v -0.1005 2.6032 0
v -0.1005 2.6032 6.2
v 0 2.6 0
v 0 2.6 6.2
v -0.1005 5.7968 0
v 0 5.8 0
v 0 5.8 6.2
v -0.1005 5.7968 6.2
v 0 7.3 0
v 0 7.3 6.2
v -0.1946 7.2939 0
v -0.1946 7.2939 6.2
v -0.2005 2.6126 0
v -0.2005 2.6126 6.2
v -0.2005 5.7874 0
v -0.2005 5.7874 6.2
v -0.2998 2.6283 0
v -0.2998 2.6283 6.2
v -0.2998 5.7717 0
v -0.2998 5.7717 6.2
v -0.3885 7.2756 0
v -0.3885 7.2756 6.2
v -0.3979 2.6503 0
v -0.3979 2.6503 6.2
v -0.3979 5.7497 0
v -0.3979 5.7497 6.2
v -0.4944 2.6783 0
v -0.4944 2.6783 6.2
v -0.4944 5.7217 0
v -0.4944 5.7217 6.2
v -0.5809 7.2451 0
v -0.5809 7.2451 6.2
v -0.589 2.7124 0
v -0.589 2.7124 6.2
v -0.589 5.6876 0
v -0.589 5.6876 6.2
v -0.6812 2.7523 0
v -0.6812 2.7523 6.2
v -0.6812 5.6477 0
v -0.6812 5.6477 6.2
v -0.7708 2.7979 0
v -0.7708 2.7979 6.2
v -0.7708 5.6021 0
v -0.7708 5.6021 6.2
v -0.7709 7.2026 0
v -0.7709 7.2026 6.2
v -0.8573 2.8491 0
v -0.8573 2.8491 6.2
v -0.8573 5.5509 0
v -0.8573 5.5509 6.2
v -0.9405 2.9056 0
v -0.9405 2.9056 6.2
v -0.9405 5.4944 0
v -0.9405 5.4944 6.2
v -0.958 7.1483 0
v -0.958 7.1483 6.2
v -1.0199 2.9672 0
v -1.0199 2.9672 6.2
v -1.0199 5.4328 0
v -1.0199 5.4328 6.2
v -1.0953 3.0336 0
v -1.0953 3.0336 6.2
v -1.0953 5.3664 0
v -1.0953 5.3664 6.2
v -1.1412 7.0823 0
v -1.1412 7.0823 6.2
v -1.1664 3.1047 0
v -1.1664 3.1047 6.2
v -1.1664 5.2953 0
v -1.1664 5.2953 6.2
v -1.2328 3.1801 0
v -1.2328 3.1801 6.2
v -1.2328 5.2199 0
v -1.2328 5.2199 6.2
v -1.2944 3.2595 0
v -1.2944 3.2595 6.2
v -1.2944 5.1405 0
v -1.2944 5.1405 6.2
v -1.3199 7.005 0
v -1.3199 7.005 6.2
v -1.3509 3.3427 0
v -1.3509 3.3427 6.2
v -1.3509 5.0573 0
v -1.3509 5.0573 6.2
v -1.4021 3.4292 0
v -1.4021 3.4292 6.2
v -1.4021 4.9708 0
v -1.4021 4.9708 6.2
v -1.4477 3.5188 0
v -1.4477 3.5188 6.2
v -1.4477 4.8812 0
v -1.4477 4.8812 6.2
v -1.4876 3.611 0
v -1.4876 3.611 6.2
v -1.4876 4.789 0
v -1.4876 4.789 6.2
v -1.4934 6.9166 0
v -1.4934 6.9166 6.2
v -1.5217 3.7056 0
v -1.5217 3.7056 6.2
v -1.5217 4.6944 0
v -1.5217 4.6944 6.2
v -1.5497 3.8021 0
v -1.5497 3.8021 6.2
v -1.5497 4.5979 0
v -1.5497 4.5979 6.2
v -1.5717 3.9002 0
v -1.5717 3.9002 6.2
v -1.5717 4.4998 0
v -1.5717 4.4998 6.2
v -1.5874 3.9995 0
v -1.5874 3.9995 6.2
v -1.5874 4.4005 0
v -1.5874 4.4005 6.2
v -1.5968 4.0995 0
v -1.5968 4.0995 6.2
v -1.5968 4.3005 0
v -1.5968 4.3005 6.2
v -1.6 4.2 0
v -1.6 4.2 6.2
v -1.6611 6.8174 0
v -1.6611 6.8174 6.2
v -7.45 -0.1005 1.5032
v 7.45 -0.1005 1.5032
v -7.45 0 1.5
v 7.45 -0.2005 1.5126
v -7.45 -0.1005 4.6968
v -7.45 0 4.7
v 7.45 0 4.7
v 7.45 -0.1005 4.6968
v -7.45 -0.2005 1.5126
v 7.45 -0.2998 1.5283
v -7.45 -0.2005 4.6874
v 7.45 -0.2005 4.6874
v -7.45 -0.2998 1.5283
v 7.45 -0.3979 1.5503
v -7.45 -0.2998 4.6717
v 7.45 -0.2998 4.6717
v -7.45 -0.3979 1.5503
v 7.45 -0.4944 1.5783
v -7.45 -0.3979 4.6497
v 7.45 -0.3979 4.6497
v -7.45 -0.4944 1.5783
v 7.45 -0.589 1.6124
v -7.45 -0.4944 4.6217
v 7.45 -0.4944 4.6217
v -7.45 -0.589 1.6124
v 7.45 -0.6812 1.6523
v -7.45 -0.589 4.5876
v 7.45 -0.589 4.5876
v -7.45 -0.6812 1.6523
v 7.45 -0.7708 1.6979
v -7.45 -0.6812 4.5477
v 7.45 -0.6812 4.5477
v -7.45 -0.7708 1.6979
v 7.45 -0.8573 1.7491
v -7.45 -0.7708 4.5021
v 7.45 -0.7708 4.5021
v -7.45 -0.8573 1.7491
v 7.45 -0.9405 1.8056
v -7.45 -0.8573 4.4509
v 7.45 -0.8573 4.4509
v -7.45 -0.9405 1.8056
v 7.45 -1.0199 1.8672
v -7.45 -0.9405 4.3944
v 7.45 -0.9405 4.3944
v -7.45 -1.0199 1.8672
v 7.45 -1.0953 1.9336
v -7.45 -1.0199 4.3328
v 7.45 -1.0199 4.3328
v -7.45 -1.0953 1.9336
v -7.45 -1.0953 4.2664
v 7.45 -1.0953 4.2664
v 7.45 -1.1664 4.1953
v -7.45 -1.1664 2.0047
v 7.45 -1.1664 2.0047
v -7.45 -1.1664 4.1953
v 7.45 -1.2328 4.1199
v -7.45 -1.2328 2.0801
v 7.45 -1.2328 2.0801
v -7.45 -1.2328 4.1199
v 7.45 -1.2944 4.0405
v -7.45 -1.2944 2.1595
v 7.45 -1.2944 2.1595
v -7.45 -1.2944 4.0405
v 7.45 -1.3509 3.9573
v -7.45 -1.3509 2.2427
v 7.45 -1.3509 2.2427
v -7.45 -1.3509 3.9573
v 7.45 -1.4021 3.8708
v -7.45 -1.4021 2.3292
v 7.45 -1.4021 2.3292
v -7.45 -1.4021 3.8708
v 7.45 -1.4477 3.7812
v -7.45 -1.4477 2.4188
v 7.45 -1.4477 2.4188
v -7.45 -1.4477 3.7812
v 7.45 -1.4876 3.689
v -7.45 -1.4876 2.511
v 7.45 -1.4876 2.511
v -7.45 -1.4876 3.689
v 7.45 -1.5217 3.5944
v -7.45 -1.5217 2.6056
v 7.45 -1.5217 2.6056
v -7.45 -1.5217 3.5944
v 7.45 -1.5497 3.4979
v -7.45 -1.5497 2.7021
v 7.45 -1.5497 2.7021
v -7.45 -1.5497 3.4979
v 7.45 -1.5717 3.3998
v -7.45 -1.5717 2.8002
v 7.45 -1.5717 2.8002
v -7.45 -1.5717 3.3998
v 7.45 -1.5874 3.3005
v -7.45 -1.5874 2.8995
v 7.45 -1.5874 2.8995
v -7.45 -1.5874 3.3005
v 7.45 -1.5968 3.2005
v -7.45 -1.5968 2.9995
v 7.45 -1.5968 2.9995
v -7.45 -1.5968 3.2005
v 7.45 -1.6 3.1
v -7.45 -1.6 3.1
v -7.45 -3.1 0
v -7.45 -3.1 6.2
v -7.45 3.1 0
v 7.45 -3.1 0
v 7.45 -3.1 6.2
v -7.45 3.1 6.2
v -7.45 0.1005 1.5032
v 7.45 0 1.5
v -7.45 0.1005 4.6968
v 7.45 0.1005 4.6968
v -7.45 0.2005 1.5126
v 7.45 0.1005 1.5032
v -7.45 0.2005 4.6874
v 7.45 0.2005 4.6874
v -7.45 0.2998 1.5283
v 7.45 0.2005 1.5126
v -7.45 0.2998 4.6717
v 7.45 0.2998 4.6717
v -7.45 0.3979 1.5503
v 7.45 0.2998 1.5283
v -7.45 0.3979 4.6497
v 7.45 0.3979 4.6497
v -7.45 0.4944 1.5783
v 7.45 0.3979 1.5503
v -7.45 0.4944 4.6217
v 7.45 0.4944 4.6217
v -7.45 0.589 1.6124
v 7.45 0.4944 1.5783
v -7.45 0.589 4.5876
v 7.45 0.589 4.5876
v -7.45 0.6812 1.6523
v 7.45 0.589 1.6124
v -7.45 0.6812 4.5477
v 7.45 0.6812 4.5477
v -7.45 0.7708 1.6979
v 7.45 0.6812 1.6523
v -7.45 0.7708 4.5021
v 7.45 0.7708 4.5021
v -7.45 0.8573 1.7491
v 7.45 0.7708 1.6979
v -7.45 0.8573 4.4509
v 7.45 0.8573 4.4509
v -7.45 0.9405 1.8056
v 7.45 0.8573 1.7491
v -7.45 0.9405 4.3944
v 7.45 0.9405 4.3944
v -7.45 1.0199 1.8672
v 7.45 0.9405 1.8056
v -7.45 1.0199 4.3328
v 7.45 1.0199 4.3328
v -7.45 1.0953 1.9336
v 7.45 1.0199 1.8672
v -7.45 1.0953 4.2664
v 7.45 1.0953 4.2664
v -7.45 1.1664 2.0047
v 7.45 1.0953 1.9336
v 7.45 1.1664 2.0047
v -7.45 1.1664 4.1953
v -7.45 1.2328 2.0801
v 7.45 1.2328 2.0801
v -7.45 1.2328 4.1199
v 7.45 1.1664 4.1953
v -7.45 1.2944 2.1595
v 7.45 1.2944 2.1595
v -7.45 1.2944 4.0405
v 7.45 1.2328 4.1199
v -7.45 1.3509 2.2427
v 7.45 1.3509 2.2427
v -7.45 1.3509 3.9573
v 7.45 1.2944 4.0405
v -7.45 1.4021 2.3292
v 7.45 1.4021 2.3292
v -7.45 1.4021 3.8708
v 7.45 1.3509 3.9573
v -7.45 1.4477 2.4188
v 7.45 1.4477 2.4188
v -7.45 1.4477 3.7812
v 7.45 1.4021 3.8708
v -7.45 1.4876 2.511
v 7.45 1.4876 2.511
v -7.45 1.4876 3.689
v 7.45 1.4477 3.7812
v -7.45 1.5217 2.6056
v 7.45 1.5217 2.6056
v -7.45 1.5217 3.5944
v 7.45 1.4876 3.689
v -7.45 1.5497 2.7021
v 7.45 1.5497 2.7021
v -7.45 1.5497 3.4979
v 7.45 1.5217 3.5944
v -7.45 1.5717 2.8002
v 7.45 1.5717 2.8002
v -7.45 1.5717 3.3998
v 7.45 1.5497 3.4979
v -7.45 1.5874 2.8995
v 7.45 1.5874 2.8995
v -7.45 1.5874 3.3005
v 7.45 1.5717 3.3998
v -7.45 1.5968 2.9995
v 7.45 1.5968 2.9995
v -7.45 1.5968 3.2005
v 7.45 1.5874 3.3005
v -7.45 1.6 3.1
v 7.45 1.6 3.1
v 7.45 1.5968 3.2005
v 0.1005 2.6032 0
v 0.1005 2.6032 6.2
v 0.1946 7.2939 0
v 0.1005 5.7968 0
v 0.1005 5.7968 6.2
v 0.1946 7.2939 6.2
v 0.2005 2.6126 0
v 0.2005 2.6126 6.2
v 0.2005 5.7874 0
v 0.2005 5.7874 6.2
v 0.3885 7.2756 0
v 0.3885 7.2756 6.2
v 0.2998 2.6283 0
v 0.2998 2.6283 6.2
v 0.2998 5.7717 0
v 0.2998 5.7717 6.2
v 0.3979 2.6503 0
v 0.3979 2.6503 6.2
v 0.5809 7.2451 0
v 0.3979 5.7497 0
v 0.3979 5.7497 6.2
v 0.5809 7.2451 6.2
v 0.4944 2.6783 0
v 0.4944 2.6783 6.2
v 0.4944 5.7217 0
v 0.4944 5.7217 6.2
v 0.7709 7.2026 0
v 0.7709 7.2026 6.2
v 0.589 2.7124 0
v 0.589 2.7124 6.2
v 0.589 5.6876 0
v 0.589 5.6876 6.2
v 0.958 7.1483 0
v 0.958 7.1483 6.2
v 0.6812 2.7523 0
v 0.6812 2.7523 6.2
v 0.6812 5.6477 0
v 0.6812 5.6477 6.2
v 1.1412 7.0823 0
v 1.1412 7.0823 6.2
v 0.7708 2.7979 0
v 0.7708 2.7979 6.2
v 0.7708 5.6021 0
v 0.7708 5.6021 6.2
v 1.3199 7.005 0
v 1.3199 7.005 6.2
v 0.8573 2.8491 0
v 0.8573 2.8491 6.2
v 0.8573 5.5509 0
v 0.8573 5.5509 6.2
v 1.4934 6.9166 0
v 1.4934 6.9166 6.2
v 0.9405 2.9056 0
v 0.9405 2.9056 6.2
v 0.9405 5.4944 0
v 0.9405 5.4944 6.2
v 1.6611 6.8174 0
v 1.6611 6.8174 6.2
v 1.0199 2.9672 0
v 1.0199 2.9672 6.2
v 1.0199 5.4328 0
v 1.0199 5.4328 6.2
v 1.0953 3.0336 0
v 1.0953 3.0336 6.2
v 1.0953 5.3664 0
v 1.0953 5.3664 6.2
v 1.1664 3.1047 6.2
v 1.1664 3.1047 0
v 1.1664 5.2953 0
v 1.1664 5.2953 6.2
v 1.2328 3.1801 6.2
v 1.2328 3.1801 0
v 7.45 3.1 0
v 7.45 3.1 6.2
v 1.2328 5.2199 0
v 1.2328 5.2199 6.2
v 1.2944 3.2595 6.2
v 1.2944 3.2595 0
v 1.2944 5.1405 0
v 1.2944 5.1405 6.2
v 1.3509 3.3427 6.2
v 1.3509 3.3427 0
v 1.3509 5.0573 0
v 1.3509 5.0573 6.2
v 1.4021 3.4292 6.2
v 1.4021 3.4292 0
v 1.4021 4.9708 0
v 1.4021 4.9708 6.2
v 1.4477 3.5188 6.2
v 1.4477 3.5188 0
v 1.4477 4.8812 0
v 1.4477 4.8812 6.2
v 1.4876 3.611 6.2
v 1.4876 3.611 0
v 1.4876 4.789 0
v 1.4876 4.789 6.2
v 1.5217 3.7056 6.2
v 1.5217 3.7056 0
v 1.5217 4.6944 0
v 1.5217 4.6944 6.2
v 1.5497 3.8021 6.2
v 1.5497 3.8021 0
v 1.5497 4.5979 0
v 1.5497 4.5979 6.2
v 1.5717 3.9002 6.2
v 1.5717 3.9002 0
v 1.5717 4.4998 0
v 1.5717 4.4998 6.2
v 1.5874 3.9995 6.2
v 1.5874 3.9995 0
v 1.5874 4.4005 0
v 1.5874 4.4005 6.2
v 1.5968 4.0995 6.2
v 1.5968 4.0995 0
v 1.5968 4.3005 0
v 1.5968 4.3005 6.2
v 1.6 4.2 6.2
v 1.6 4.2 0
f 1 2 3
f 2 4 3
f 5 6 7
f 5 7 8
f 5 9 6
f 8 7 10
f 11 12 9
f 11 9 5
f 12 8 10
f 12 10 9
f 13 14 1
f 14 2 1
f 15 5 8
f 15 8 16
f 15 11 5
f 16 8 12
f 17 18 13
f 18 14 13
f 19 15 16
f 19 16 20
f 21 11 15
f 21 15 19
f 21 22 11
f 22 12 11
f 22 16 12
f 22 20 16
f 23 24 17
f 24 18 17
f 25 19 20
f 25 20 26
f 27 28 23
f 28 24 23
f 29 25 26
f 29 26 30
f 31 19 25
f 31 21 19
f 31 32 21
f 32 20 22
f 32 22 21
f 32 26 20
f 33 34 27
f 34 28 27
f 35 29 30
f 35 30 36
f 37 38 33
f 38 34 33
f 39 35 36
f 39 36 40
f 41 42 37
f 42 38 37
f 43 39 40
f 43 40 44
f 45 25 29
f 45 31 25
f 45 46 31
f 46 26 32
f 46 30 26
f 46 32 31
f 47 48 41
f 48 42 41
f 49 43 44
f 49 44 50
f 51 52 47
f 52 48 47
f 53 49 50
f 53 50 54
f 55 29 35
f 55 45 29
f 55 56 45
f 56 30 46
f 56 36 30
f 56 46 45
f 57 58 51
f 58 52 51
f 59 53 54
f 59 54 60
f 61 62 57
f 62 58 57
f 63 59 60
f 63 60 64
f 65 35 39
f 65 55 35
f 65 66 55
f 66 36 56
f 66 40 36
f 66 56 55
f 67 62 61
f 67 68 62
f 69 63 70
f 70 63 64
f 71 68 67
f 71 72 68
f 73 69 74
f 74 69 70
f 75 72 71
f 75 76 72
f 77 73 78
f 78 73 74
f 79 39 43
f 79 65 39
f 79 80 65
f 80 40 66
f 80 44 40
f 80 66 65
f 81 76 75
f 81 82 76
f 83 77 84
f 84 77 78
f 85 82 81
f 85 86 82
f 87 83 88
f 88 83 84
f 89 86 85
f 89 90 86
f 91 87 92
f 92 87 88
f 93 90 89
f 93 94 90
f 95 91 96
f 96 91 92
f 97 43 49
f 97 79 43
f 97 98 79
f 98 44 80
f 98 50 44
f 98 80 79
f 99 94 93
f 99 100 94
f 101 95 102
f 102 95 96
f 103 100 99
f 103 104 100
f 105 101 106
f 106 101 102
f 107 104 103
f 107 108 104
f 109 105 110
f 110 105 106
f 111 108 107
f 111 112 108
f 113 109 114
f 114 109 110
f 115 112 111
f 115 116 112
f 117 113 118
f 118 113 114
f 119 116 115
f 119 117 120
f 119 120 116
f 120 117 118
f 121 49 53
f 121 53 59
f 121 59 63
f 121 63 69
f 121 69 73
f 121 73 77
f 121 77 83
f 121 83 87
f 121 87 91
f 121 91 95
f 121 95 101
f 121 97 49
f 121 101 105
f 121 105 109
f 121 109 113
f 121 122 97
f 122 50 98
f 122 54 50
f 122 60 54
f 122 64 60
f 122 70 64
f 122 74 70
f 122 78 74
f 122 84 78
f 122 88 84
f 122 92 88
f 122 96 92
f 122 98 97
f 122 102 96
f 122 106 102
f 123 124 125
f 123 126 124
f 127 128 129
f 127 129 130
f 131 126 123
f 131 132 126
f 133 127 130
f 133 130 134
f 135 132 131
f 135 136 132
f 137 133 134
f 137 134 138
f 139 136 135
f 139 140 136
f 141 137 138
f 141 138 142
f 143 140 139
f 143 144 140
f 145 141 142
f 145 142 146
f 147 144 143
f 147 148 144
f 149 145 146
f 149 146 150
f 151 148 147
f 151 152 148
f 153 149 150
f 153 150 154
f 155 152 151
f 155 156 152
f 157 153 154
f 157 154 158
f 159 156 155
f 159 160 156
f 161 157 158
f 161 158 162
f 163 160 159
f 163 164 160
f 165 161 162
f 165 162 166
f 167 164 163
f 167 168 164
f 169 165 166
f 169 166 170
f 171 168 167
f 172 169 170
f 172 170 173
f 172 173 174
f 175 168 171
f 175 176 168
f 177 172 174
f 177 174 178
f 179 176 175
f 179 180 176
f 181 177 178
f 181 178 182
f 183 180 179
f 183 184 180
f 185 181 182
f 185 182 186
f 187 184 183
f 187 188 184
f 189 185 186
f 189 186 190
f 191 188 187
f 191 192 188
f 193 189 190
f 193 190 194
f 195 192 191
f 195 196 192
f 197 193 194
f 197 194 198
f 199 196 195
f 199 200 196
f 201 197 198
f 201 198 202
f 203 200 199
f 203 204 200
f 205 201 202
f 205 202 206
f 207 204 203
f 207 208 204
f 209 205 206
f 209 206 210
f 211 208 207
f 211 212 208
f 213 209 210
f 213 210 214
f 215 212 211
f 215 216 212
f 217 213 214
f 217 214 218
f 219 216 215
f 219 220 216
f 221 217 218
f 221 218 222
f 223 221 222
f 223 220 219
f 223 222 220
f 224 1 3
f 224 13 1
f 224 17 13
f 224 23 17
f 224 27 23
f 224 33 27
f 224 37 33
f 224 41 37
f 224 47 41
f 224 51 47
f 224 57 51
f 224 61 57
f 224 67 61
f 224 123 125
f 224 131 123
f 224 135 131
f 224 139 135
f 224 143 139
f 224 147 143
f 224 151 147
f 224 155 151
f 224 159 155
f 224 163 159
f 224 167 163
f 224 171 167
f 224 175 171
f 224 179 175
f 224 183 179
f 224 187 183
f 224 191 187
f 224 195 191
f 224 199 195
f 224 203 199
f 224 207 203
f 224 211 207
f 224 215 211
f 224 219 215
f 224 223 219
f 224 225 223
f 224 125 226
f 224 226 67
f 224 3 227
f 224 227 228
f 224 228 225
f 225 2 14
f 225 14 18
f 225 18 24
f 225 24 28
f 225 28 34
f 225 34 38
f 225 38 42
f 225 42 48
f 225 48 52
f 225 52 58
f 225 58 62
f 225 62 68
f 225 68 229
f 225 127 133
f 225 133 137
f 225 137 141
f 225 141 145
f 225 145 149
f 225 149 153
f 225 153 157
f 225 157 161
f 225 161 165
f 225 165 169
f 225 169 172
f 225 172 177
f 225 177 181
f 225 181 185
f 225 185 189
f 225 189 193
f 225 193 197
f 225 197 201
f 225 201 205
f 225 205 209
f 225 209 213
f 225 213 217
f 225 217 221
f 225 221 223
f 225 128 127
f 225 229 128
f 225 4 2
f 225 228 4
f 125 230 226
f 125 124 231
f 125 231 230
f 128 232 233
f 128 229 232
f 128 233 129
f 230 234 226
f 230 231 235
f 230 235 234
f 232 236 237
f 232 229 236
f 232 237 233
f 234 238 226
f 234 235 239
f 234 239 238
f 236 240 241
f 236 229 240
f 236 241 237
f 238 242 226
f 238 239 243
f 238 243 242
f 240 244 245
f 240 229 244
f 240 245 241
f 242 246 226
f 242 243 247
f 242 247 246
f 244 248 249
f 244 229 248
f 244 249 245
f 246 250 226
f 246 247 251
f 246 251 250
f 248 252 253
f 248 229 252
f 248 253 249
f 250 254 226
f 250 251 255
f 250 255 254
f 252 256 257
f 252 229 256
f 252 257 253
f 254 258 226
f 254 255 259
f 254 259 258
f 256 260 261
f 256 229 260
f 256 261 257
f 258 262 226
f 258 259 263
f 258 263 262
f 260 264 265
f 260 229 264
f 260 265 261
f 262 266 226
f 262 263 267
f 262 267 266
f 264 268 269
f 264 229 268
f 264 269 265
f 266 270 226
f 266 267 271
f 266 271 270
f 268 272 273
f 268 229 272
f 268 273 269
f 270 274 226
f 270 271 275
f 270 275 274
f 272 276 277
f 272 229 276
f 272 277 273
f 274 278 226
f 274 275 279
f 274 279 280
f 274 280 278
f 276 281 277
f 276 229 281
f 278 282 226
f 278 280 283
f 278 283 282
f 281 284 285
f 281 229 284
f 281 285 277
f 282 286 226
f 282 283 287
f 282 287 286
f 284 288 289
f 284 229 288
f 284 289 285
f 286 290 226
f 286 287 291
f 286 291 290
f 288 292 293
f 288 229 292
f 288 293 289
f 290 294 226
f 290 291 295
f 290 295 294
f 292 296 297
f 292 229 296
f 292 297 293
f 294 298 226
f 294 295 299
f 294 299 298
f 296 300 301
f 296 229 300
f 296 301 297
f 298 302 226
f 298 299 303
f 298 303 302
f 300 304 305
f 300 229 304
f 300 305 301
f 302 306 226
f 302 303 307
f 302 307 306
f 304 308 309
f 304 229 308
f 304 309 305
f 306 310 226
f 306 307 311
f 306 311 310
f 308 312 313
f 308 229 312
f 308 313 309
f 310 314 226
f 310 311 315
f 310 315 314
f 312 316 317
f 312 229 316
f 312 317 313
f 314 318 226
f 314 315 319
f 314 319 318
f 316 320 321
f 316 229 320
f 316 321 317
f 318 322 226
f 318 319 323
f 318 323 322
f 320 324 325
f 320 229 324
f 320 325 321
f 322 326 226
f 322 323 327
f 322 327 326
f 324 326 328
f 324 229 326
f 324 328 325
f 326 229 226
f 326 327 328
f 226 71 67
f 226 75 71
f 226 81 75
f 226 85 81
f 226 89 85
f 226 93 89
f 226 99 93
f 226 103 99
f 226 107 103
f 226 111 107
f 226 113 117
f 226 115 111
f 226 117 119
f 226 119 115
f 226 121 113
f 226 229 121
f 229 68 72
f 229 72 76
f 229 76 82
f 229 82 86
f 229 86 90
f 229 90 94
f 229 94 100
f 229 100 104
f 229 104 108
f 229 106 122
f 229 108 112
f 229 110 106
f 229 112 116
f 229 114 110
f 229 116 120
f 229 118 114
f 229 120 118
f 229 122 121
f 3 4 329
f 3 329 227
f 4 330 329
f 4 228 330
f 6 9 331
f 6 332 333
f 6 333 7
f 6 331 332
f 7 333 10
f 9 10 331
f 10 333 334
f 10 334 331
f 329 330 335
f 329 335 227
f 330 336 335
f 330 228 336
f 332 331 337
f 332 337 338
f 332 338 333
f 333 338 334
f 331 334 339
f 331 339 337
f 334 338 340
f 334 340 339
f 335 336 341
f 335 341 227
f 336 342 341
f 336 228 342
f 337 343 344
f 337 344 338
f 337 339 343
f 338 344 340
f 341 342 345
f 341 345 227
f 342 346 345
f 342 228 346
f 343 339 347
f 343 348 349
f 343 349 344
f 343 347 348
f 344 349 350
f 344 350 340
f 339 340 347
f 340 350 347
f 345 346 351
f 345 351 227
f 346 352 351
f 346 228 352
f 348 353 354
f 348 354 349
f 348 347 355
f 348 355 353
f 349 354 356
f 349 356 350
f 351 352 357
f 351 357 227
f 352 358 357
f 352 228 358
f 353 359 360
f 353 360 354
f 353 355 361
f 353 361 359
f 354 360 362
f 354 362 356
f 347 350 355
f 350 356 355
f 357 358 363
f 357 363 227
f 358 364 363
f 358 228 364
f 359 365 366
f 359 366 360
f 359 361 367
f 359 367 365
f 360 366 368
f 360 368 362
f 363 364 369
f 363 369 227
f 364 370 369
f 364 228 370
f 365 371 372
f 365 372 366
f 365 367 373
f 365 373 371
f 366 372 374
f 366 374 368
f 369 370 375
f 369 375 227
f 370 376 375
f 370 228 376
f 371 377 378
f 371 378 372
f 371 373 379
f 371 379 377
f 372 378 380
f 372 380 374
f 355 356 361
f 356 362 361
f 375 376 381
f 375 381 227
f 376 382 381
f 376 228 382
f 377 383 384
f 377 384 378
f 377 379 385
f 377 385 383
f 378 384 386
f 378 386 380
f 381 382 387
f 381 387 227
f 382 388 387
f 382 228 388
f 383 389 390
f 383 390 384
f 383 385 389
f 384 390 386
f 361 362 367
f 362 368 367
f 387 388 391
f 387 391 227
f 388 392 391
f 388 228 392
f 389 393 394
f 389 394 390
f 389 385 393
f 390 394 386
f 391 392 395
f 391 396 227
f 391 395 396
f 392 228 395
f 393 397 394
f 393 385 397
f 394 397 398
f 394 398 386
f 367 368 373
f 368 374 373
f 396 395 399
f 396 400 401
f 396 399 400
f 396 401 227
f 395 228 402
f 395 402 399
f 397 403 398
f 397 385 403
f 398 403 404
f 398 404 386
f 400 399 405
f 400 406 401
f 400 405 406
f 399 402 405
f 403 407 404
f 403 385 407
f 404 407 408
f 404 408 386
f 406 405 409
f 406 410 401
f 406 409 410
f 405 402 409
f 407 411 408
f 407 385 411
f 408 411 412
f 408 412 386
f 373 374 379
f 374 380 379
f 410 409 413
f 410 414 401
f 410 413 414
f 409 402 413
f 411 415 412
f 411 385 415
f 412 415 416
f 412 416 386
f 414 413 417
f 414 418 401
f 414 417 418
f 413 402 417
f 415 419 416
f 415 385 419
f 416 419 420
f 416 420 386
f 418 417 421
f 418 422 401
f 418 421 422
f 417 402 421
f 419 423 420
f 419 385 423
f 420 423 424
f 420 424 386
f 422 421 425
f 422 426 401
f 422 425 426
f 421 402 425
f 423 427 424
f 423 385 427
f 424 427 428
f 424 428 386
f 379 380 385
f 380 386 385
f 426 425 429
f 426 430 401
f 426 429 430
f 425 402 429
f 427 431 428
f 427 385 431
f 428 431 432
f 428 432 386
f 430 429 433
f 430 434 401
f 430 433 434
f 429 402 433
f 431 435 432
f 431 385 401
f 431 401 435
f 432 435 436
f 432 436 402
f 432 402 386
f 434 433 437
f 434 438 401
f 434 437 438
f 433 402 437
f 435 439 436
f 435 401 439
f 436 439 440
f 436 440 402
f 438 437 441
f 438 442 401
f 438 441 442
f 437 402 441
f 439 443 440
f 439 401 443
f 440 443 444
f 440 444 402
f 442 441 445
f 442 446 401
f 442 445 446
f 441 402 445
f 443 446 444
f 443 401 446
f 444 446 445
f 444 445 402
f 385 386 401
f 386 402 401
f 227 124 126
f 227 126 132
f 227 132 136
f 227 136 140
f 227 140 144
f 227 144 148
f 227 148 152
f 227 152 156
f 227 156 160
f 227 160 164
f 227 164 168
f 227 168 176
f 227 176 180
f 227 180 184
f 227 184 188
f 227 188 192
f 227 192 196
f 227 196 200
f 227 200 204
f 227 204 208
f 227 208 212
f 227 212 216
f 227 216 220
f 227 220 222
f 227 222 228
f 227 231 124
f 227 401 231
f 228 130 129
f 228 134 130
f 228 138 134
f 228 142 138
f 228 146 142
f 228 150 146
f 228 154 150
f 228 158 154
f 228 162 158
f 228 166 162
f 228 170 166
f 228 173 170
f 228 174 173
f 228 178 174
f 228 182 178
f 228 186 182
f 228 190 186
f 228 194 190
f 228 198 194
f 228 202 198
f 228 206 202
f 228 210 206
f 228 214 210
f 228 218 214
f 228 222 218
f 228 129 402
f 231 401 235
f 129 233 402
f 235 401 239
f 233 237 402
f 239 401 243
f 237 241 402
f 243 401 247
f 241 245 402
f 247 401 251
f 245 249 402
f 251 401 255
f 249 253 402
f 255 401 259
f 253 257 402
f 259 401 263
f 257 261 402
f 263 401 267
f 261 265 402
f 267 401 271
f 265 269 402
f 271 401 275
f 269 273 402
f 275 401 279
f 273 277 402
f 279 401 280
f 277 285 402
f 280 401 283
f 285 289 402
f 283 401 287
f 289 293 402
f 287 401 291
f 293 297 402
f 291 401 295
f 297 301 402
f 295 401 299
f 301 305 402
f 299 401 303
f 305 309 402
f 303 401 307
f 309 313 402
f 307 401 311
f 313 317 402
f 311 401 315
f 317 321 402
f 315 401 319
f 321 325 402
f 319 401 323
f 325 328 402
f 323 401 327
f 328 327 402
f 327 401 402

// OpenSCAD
// file: parameters.scad
global_clearance = 0.5;


//Main tube diameter - hole [mm]
main_tube_outer_diameter = 25.4;
main_tube_inner_diameter = 23.05;

// Nastavení parametrů rotoru

gliding_aggle = 14;         // tenhle úhel by se zřejmě v budoucnu měl počítat z požadované klouzavosti.

rotor_blade_AOA = 1.5;      // nastavení úhlu náběhu rotorového listu
rotor_blade_length = 970;   // délka rotorového listu
rotor_blade_depth = 50;     // hloubka rotorového listu
rotor_height = 180;         // výška otočného kloubu rotoru nad hlavní trubkou vírníku (odhad)
rotor_blades_count = 2;
rotor_delta_angle = 12;


rotor_head_width =  21.4;    //Rozměr 1 v nákresu
pilon_wall_thickness = 4.2;  // Rozměr 2 v nákresu
horizontal_screw_distance = 14.5;   // Rozměr 4 v nákresu
vertical_screw_distance = 12;       // rozměr 5 v nkresu

rotorhead_wall_thickness = 2; // sila tistenych dilu


bearing_outer_diameter = 7.1;    // Rozměr B1 v nákresu s přídavkem na toleranci otvoru
bearing_thickness = 3.1;        // Rozměr B2 v nákresu
bearing_shaft_length = 19.5;    // Rozměr B3 v nákresu


// nastavení parametrů motoru

engine_angle = -8;
engine_diameter = 55;
engine_offset = 55;

engine_screws_radius = 15;
engine_holes_radius = (24 + 44)/4;
engine_shatf_hole_diameter = 13;

// screw length step - minimum difference in length between two types of screws
basic_screw_length = 5;

//Screw diameter and nut for M5 [mm]
M5_screw_diameter=5.5;
M5_head_height = 5;
M5_head_diameter = 13+0.5;
M5_nut_height = 4.5;
M5_nut_diameter = 9.4;
M5_nut_pocket = 8.4;

//Screw diameter and nut for M4 [mm]
M4_screw_diameter=4.5;
M4_screw_head_height = 4;
M4_nut_height = 3.2;
M4_nut_diameter = 8.4;
M4_nut_pocket = 7.5;

//Screw diameter and nut for M3 [mm]
M3_screw_diameter = 3.2;
M3_nut_height = 2.7;
M3_nut_diameter = 6.6;
M3_screw_head_height = 3;
M3_nut_pocket = 5.6;


//Screw diameter and nut for M2,5 [mm]
M2_5_screw_diameter = 2.7;
M2_5_nut_height = 2.3;
M2_5_nut_diameter = 6;
M2_5_nut_pocket = 5.1;

//Screw diameter and nut for M2 [mm]
M2_screw_diameter = 2.2;
M2_nut_height = 1.8;
M2_nut_diameter = 4.5;
M2_nut_pocket = 3.95;



//šroub servo
Servo_screw = 1.5;
Servo_nut_height = 1;
Servo_nut_diameter = 2.7;



//center_of_gravity_position = [main_pilon_position - tan(gliding_aggle)*rotor_height, 0, 0];


////podzvozek

radius_undercarriage = 25;
vzdalenost_x = tan(20) * 131;
vzdalenost_y = (131 - radius_undercarriage)/tan(79);
uhel_y = 90 - 20;
uhel_x = 90 - 79;

maximum_printable_size = 150;


////Pitotova trubice
Pitot_tube_diameter = 4.02 + 1;
Distance_hole_from_tube = 11.92;  //vzdálenost otvoru pro připevnění od samotné trubičky
// main file
//// ThunderFly - Rotor Head - Part 2

include <parameters.scad>

length = rotor_head_width-6-0.5; // Length of the part
space = 1; // Axis hole distance
wall = 1.5;

$fn = 100;

module Part2(){
    difference(){
        hull(){
            translate([-length/2, -(M3_screw_diameter + 2*wall)/2, 0])
                cube([length, M3_screw_diameter + 2*wall, M3_screw_diameter + 2*wall]);
            translate([0, M3_screw_diameter + space, 0])
                cylinder(d = M3_screw_diameter + 2*wall, h = M3_screw_diameter + 2*wall);
        }
    translate([0, M3_screw_diameter + space, -0.1])
        cylinder(d = M3_screw_diameter, h = 100);
    rotate([0, 90, 0])
        translate([-(M3_screw_diameter + 2*wall)/2, 0, -50])
            cylinder(h = 100, d = M3_screw_diameter);
    }
}

Part2();
